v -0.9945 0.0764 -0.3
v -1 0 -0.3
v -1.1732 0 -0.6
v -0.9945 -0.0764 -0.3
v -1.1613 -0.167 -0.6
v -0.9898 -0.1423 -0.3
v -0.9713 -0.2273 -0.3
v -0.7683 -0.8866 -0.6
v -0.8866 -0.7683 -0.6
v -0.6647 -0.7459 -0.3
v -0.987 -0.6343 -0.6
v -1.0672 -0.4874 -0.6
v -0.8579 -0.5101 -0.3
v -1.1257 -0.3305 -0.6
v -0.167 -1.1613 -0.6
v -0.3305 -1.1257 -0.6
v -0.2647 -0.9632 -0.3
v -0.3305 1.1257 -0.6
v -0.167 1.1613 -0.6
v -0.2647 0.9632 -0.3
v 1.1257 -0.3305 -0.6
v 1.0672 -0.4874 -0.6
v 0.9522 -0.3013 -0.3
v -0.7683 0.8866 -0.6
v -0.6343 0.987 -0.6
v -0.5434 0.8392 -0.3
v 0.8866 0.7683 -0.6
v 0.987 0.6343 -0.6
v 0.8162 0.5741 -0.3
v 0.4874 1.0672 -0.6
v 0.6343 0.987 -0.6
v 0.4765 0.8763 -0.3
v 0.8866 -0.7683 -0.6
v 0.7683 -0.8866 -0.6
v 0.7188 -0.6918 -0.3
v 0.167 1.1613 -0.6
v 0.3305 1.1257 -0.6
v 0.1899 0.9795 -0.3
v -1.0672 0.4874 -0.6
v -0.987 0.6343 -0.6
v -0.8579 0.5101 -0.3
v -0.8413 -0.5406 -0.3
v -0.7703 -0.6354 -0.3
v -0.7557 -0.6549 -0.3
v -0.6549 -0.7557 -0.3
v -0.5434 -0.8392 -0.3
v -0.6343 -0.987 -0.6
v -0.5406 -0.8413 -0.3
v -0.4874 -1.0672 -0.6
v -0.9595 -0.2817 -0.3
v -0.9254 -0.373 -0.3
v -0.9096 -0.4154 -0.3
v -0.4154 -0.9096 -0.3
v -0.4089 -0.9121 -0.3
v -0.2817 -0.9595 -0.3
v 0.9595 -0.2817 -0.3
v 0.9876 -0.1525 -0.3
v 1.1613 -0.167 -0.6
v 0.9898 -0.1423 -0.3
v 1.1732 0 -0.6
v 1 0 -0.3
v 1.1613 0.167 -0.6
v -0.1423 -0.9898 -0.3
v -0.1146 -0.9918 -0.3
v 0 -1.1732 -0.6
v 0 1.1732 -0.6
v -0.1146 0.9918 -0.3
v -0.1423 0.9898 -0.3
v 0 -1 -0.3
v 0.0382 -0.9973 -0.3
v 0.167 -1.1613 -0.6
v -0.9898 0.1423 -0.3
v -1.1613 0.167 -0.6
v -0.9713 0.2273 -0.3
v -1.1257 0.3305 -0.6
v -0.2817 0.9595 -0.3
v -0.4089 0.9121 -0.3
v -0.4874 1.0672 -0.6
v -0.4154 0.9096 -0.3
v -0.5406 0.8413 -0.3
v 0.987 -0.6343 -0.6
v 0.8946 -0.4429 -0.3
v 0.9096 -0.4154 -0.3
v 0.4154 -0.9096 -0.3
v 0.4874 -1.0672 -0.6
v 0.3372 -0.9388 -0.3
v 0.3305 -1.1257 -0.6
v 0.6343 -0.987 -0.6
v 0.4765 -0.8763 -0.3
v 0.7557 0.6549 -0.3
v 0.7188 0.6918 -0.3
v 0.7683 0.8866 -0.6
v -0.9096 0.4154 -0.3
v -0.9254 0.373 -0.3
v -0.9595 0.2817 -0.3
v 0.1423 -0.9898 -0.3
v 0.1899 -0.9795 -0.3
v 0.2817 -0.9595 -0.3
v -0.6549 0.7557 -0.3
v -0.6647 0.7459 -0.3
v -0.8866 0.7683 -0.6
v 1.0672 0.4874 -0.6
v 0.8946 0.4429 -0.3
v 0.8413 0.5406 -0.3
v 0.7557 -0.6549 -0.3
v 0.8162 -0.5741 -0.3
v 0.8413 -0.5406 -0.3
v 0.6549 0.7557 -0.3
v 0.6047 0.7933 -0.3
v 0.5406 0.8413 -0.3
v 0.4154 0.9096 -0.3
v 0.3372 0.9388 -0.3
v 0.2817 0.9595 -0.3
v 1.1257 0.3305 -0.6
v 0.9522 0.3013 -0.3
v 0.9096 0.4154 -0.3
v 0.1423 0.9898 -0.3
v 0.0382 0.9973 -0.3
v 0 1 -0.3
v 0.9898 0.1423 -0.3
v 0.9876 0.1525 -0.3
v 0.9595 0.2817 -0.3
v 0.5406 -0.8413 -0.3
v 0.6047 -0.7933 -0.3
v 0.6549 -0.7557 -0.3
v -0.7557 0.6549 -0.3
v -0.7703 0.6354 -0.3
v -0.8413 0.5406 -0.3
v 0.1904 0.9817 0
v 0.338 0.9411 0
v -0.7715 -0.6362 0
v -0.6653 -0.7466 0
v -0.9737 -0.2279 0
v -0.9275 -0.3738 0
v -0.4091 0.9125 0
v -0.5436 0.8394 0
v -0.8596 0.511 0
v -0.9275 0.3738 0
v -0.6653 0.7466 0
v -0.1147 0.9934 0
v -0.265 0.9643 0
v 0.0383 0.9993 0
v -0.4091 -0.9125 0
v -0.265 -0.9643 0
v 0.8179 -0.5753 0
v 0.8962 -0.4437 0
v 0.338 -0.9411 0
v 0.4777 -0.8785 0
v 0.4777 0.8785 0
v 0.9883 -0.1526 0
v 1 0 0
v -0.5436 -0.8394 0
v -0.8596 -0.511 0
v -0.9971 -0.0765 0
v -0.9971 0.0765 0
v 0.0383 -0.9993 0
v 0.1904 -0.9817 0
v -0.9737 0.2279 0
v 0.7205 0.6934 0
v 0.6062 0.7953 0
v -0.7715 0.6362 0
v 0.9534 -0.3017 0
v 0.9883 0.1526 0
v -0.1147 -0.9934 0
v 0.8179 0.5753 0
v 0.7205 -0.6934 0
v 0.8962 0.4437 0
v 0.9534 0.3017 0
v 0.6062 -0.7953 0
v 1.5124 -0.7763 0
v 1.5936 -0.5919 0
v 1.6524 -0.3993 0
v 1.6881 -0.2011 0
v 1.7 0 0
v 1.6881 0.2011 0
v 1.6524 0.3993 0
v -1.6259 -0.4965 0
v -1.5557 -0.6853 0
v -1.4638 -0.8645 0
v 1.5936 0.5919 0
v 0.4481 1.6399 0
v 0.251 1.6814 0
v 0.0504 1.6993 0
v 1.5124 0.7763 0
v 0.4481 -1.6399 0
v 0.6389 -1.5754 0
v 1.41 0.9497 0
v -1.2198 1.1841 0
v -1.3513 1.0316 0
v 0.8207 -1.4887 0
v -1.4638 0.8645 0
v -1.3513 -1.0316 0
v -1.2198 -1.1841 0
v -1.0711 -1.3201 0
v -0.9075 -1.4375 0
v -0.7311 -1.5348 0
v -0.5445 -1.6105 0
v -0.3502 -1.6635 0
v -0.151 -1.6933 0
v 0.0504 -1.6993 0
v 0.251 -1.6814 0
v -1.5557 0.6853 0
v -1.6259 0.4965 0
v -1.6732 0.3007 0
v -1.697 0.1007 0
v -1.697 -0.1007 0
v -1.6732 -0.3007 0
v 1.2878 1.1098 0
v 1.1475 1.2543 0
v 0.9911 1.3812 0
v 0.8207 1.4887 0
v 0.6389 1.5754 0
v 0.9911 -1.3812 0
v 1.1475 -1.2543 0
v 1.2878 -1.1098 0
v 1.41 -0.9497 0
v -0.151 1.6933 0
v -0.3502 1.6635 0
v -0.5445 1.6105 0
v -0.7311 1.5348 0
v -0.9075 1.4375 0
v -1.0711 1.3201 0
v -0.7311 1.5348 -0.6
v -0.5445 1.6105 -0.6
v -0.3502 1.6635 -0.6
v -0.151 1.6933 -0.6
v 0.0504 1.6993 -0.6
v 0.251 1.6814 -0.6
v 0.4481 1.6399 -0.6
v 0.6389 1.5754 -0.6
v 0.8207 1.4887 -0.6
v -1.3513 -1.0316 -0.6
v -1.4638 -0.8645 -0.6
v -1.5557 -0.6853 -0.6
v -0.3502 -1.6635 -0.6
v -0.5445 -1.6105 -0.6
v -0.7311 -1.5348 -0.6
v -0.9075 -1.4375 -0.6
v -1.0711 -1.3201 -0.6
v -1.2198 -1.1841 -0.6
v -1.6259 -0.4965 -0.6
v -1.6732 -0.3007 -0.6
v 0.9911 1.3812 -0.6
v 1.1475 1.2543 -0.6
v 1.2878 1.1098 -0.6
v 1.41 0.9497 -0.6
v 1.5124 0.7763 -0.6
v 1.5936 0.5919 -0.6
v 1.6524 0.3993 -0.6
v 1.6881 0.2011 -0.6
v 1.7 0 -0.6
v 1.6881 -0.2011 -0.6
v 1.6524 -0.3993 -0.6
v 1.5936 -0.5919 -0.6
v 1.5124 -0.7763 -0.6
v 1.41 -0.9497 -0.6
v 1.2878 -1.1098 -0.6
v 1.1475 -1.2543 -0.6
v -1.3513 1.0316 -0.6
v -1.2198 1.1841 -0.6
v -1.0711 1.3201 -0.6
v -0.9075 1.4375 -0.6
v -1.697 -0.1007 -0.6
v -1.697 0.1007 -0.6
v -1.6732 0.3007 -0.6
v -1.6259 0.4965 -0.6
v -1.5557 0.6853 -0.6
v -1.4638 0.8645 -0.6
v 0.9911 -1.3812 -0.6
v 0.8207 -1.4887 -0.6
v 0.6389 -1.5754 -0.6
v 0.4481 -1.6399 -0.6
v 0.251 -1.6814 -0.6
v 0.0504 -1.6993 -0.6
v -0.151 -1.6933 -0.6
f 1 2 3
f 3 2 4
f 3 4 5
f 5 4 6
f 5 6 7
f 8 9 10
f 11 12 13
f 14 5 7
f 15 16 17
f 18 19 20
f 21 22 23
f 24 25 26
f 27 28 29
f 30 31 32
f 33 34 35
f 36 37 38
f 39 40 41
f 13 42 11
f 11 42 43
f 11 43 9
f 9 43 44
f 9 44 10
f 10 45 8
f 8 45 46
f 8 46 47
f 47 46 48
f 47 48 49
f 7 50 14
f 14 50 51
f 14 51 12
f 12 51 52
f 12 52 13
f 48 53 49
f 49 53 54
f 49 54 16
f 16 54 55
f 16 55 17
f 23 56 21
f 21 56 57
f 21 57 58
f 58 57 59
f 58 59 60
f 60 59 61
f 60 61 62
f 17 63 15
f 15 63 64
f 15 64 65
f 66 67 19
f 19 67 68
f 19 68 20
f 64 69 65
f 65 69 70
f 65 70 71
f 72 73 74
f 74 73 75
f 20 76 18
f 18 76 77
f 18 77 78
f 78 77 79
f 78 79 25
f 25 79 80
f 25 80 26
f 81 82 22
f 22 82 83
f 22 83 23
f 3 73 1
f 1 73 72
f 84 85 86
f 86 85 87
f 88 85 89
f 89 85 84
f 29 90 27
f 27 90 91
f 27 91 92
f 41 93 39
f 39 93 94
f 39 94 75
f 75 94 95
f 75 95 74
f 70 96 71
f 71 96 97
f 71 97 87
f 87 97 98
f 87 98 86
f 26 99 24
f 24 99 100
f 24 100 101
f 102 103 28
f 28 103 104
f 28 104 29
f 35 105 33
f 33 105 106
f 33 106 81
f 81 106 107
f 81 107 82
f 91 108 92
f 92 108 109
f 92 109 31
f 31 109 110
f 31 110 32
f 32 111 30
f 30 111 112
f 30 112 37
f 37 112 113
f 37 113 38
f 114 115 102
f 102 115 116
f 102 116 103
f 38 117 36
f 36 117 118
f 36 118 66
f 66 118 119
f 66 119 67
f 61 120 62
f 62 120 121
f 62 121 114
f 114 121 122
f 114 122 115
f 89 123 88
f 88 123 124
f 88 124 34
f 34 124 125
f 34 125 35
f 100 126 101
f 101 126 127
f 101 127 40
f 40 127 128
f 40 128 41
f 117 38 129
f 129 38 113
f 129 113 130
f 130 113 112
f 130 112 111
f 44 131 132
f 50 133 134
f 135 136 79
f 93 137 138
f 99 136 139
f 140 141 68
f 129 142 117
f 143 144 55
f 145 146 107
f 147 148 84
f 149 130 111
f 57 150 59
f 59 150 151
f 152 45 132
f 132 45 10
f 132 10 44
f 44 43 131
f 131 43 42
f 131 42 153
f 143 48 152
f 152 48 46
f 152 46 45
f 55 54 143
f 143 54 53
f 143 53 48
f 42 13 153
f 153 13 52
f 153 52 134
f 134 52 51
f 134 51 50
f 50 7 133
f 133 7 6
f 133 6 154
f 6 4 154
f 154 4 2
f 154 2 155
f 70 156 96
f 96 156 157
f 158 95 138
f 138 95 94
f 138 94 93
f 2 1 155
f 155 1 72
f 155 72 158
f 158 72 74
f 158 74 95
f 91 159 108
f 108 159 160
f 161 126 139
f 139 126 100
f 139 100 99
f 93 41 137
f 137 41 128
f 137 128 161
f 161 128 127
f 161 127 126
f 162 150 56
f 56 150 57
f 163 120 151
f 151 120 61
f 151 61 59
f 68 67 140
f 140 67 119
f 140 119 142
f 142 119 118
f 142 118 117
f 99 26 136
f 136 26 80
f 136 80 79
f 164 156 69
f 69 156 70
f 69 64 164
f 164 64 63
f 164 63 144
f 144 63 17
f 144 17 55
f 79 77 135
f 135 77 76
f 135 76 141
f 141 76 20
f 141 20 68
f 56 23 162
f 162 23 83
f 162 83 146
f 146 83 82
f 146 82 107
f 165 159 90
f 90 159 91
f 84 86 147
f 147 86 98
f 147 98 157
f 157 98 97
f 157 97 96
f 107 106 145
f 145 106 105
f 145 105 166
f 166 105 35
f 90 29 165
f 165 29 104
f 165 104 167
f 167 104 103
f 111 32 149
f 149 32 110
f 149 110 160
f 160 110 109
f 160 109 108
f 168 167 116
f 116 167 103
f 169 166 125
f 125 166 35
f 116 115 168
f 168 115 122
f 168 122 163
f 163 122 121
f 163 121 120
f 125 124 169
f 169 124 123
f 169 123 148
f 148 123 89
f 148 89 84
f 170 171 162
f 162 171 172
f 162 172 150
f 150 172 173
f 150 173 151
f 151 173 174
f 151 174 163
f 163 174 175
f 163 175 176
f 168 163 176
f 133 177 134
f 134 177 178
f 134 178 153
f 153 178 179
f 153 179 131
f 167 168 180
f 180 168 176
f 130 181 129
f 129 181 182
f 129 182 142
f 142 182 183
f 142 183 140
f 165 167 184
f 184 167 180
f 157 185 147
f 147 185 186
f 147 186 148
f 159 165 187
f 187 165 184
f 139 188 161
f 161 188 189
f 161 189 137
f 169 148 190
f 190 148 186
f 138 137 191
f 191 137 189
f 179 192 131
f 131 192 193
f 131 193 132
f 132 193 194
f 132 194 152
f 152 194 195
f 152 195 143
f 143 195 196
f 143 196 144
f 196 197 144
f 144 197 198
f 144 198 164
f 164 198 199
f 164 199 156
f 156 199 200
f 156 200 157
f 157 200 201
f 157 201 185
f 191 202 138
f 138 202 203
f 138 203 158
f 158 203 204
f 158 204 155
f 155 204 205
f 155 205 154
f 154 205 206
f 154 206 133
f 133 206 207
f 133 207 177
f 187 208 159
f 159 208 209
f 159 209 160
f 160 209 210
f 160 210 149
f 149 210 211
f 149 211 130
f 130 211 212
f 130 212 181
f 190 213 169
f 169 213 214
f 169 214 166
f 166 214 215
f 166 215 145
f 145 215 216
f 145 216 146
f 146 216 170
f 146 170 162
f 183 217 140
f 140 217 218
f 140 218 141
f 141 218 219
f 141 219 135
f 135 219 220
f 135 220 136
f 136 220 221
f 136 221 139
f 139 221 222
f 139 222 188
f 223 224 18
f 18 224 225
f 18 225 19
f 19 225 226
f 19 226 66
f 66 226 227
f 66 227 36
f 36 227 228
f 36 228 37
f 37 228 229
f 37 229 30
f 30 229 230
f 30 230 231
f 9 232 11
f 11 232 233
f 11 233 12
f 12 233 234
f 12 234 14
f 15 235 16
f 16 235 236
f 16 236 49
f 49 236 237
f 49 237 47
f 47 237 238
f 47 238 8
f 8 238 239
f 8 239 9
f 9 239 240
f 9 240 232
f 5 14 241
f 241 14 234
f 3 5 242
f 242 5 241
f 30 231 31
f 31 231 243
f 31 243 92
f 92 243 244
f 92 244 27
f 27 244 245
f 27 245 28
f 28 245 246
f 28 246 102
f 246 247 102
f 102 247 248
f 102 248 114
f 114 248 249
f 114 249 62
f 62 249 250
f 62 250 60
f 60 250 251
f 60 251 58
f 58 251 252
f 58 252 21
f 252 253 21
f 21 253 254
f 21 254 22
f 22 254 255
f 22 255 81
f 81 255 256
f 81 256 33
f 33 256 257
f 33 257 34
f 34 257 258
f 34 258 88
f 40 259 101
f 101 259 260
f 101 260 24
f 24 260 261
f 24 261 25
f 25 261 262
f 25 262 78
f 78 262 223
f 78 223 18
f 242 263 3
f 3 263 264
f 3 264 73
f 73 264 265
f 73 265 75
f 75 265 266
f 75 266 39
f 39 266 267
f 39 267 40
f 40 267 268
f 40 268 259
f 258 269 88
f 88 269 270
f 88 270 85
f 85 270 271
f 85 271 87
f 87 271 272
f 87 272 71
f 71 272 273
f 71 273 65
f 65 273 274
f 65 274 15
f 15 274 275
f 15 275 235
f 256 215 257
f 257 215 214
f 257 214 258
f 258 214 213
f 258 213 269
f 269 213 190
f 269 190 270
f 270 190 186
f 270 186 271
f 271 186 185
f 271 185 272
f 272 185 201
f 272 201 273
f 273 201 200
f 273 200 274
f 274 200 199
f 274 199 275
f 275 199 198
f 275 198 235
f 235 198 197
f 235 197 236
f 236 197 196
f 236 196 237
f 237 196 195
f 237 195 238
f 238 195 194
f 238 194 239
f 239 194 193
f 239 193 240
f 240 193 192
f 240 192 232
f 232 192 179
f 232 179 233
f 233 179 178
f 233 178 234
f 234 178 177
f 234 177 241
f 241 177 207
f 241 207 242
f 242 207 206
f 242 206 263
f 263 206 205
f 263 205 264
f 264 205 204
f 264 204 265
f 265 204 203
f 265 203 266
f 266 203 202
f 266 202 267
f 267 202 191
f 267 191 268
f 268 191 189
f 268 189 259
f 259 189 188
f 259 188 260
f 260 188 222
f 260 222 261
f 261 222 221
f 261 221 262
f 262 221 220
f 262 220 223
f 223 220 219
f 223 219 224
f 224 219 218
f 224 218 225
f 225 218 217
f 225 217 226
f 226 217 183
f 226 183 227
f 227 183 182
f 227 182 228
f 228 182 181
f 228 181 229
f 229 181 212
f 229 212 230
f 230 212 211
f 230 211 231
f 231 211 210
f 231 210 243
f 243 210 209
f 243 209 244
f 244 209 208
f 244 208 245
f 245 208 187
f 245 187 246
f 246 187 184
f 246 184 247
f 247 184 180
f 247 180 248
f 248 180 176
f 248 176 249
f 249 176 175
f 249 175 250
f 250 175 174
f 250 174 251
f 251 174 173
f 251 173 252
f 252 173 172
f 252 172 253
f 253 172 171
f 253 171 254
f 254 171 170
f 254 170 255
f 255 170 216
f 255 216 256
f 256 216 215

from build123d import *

# Parameters (mm, degrees)
SKETCH1_R           = 1.7
BOSS_EXTRUDE1_DEPTH = 0.6
SKETCH2_R           = 1
CUT_EXTRUDE1_DEPTH  = 1.6
CHAMFER1_SIZE       = 0.3
CHAMFER1_SIZE2      = 0.173205081


with BuildPart() as part:
    # Sketch1 → Boss-Extrude1 (new body)
    with BuildSketch(Plane.XY):
        Circle(SKETCH1_R)
    extrude(amount=-BOSS_EXTRUDE1_DEPTH)

    # Sketch2 → Cut-Extrude1 (cut, through all)
    with BuildSketch(Plane.XY):
        Circle(SKETCH2_R)
    extrude(amount=-CUT_EXTRUDE1_DEPTH, mode=Mode.SUBTRACT)

    # Chamfer1
    chamfer1_edges = [part.edges().sort_by_distance(p)[0] for p in [
        (-1, 0, -0.6),
    ]]
    chamfer1_side = [part.faces().sort_by_distance(p)[0] for p in [
        (-1, 0, -0.3),
    ]]
    chamfer(chamfer1_edges, length=CHAMFER1_SIZE, length2=CHAMFER1_SIZE2, reference=chamfer1_side[0])


solid = part.part
